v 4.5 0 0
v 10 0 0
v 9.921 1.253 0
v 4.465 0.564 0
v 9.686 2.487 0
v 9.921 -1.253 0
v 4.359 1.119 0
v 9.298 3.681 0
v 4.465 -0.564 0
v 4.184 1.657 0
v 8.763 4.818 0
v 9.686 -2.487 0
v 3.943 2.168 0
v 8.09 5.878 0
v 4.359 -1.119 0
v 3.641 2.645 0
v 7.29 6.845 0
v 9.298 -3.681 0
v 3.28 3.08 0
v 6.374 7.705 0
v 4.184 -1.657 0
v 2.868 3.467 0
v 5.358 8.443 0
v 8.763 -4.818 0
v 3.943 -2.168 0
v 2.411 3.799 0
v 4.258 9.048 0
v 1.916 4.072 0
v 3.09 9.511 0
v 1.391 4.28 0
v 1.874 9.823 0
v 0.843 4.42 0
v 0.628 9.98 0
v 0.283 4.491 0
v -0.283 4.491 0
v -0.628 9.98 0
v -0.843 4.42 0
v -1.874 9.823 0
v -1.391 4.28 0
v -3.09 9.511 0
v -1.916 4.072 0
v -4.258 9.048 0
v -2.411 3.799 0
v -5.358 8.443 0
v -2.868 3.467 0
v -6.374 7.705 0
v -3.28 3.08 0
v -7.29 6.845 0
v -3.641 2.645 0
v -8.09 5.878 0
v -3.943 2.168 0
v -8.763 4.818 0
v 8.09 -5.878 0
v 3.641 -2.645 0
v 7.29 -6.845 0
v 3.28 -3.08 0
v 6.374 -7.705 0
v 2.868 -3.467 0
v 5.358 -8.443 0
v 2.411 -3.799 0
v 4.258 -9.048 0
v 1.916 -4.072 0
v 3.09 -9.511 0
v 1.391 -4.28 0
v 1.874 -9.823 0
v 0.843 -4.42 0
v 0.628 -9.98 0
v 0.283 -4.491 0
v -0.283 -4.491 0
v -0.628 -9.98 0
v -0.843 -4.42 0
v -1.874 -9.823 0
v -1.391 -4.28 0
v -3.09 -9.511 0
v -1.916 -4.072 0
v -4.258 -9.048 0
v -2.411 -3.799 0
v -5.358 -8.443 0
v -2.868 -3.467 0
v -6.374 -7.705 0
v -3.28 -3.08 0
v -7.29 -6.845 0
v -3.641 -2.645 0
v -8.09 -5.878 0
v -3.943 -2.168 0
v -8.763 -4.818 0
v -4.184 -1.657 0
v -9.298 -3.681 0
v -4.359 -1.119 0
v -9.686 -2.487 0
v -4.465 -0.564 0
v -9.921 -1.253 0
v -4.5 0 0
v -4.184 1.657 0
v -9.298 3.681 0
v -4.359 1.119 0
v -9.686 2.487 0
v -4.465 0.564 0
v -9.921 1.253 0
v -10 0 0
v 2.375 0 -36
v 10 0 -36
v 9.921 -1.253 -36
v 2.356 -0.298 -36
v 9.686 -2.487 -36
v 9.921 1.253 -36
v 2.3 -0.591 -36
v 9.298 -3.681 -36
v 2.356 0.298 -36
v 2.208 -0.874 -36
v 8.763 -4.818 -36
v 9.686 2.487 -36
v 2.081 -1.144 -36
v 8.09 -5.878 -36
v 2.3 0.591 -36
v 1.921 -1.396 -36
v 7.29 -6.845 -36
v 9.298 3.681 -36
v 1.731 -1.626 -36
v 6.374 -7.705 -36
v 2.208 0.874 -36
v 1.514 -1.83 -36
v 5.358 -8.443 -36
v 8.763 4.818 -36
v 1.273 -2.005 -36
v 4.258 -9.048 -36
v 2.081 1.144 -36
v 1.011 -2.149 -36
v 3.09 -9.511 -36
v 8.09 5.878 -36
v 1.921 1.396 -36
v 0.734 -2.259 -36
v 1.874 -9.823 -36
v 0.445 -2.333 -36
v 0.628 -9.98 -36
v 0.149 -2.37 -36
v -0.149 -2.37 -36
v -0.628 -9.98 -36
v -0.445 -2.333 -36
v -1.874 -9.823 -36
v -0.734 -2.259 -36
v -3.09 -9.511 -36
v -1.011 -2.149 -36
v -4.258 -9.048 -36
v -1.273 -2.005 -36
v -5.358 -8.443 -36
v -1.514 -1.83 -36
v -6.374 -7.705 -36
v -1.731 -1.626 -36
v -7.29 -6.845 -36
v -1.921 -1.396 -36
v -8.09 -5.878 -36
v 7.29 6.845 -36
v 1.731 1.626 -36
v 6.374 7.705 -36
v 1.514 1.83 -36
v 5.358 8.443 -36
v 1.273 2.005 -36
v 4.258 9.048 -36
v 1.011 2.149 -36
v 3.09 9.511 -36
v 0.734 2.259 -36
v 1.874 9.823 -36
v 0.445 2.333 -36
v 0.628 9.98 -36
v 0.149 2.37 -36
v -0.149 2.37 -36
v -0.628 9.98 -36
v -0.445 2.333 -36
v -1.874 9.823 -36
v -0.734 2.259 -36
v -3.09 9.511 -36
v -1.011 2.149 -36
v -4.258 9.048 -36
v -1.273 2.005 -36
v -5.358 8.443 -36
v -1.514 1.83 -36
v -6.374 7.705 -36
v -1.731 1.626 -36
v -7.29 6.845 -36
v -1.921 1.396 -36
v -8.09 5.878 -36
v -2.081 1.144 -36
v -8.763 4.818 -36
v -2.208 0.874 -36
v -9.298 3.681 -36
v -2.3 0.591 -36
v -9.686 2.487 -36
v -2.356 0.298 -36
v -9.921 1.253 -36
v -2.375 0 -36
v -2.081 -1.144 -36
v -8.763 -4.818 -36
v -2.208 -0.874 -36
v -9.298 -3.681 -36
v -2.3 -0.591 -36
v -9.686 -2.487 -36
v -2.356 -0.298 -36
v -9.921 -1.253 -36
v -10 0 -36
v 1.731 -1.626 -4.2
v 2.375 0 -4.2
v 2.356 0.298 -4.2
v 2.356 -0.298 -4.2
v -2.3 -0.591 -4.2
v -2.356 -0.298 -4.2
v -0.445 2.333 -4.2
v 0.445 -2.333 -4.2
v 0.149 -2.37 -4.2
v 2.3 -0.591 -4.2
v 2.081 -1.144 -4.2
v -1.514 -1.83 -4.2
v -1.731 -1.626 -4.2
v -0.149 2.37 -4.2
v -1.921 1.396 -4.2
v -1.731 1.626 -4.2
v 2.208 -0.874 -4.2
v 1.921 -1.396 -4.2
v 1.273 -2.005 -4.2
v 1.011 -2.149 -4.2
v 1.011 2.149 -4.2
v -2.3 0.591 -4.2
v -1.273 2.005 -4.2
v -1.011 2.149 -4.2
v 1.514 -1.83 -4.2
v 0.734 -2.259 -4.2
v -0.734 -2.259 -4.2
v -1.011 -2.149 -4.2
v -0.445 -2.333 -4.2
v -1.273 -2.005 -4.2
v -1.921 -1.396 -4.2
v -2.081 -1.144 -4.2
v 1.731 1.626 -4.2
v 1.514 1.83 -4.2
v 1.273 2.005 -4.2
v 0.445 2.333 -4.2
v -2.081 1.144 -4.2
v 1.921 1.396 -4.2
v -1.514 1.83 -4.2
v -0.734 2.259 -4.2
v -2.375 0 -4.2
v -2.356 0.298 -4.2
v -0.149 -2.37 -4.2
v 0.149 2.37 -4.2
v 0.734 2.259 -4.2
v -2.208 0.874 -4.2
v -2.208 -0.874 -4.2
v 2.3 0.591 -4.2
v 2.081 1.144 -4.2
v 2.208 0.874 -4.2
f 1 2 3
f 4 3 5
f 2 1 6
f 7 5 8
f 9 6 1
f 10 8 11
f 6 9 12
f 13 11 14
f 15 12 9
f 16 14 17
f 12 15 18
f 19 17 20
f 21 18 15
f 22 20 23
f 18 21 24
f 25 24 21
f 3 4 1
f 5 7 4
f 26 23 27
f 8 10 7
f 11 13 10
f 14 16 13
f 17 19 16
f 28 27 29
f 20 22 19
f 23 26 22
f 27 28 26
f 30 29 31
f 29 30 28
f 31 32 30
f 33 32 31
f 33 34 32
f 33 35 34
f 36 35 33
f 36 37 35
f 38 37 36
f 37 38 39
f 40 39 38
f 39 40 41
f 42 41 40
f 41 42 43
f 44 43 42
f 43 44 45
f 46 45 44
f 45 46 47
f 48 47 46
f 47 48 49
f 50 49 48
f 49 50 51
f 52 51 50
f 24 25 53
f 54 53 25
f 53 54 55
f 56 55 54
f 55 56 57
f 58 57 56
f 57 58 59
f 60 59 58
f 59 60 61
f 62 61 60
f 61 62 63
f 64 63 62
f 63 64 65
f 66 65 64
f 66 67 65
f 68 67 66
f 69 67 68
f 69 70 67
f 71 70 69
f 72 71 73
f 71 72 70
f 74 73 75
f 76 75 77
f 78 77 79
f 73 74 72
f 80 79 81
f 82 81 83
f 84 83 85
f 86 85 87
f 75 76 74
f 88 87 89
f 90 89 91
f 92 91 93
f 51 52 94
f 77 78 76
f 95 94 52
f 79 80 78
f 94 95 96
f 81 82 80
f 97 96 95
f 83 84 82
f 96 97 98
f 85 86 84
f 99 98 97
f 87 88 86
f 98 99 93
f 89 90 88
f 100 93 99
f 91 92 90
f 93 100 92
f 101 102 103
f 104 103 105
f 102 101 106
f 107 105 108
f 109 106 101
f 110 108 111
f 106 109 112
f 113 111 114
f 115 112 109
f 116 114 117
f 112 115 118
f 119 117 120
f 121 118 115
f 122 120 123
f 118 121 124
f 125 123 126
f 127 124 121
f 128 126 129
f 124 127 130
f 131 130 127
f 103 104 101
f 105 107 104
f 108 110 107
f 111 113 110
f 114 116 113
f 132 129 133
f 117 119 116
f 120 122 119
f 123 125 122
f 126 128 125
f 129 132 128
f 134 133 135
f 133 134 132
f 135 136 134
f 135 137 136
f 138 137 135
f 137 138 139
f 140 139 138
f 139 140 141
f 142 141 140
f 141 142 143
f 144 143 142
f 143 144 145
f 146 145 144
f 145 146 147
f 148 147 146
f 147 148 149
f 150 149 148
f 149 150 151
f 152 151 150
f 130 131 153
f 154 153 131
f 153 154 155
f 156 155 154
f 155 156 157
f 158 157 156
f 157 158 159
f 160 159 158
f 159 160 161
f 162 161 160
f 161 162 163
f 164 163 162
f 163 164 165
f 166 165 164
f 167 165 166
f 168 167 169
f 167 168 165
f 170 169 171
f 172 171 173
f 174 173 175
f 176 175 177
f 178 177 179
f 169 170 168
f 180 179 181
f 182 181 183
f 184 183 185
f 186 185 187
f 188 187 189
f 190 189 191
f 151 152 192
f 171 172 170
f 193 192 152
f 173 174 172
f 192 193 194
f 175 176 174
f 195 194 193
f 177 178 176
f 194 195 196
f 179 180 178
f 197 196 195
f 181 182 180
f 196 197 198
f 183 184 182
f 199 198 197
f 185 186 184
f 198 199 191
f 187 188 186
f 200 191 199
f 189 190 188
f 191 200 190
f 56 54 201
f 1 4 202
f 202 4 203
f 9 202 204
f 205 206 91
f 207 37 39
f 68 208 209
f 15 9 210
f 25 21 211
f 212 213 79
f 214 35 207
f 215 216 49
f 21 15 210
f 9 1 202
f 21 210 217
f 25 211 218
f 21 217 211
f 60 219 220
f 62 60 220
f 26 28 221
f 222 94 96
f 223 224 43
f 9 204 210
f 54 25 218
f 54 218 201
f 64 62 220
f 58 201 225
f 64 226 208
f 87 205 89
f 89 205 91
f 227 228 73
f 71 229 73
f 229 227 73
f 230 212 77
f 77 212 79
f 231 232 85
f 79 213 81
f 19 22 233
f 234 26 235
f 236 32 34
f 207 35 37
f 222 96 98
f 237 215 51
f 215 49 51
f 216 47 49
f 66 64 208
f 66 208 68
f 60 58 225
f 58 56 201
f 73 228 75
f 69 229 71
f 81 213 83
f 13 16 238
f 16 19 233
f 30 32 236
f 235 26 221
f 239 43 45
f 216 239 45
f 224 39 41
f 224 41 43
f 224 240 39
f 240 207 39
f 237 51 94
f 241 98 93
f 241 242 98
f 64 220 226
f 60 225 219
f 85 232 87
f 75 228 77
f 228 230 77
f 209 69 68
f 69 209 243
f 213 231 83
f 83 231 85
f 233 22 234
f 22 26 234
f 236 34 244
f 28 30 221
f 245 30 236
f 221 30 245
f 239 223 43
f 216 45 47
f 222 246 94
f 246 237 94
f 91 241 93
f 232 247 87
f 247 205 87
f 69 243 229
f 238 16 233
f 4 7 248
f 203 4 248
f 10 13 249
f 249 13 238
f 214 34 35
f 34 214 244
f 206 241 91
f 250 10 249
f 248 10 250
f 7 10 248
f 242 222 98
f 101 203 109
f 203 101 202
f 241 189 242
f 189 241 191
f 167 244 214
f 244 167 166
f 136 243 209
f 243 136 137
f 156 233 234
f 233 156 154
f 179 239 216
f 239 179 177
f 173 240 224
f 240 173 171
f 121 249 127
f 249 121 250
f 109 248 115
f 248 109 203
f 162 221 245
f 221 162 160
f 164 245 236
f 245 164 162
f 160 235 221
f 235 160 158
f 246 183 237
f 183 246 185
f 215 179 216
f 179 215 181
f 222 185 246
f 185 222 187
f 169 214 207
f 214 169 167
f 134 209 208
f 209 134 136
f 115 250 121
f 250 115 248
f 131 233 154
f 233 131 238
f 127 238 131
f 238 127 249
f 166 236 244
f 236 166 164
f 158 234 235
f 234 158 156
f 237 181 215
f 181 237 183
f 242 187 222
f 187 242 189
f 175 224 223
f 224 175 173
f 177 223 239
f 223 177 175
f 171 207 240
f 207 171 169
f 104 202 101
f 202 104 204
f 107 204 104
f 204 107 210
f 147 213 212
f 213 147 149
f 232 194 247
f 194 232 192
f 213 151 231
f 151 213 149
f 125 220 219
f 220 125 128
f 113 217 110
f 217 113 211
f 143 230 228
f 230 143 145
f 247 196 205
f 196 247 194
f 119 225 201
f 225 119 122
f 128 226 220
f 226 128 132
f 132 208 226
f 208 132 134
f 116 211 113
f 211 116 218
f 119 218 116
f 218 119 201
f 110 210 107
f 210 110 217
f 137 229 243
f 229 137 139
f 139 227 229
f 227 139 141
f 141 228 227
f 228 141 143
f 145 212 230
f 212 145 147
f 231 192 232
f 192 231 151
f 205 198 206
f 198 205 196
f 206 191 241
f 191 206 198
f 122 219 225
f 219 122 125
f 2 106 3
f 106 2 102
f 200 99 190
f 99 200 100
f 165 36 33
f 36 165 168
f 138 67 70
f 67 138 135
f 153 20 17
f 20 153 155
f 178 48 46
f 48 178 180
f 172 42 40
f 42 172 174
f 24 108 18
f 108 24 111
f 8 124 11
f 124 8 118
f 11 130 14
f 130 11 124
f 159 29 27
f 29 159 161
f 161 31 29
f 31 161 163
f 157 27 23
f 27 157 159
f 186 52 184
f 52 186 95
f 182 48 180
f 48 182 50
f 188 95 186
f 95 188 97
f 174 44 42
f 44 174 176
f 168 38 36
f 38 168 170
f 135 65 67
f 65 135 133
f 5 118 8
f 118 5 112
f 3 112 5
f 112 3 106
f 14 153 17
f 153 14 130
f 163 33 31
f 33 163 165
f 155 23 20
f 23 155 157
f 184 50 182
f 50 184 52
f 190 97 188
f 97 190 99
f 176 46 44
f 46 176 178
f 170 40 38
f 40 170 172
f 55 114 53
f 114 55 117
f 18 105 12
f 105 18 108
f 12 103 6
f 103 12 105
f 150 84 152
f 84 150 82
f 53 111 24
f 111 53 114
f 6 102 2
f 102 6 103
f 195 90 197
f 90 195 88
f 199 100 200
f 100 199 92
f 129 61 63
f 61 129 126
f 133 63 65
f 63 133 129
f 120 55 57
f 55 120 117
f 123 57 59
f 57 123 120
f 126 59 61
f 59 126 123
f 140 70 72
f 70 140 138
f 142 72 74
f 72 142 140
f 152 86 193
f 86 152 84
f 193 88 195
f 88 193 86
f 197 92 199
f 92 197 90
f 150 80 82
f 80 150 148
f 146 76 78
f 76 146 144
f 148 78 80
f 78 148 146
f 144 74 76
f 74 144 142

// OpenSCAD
$fn = 50;


difference() {
	union() {
		translate(v = [0, 0, -36.0000000000]) {
			cylinder(h = 36, r = 10.0000000000);
		}
		cylinder(h = 0, r = 16.0000000000);
	}
	union() {
		translate(v = [0, 0, 0]) {
			rotate(a = [0, 0, 0]) {
				difference() {
					union() {
						#translate(v = [0, 0, -36.0000000000]) {
							cylinder(h = 36, r = 2.2500000000);
						}
						#translate(v = [0, 0, -4.2000000000]) {
							cylinder(h = 4.2000000000, r1 = 2.3750000000, r2 = 4.5000000000);
						}
						#translate(v = [0, 0, -36.0000000000]) {
							cylinder(h = 36, r = 2.3750000000);
						}
						#translate(v = [0, 0, -36.0000000000]) {
							cylinder(h = 36, r = 2.2500000000);
						}
					}
					union();
				}
			}
		}
	}
}
